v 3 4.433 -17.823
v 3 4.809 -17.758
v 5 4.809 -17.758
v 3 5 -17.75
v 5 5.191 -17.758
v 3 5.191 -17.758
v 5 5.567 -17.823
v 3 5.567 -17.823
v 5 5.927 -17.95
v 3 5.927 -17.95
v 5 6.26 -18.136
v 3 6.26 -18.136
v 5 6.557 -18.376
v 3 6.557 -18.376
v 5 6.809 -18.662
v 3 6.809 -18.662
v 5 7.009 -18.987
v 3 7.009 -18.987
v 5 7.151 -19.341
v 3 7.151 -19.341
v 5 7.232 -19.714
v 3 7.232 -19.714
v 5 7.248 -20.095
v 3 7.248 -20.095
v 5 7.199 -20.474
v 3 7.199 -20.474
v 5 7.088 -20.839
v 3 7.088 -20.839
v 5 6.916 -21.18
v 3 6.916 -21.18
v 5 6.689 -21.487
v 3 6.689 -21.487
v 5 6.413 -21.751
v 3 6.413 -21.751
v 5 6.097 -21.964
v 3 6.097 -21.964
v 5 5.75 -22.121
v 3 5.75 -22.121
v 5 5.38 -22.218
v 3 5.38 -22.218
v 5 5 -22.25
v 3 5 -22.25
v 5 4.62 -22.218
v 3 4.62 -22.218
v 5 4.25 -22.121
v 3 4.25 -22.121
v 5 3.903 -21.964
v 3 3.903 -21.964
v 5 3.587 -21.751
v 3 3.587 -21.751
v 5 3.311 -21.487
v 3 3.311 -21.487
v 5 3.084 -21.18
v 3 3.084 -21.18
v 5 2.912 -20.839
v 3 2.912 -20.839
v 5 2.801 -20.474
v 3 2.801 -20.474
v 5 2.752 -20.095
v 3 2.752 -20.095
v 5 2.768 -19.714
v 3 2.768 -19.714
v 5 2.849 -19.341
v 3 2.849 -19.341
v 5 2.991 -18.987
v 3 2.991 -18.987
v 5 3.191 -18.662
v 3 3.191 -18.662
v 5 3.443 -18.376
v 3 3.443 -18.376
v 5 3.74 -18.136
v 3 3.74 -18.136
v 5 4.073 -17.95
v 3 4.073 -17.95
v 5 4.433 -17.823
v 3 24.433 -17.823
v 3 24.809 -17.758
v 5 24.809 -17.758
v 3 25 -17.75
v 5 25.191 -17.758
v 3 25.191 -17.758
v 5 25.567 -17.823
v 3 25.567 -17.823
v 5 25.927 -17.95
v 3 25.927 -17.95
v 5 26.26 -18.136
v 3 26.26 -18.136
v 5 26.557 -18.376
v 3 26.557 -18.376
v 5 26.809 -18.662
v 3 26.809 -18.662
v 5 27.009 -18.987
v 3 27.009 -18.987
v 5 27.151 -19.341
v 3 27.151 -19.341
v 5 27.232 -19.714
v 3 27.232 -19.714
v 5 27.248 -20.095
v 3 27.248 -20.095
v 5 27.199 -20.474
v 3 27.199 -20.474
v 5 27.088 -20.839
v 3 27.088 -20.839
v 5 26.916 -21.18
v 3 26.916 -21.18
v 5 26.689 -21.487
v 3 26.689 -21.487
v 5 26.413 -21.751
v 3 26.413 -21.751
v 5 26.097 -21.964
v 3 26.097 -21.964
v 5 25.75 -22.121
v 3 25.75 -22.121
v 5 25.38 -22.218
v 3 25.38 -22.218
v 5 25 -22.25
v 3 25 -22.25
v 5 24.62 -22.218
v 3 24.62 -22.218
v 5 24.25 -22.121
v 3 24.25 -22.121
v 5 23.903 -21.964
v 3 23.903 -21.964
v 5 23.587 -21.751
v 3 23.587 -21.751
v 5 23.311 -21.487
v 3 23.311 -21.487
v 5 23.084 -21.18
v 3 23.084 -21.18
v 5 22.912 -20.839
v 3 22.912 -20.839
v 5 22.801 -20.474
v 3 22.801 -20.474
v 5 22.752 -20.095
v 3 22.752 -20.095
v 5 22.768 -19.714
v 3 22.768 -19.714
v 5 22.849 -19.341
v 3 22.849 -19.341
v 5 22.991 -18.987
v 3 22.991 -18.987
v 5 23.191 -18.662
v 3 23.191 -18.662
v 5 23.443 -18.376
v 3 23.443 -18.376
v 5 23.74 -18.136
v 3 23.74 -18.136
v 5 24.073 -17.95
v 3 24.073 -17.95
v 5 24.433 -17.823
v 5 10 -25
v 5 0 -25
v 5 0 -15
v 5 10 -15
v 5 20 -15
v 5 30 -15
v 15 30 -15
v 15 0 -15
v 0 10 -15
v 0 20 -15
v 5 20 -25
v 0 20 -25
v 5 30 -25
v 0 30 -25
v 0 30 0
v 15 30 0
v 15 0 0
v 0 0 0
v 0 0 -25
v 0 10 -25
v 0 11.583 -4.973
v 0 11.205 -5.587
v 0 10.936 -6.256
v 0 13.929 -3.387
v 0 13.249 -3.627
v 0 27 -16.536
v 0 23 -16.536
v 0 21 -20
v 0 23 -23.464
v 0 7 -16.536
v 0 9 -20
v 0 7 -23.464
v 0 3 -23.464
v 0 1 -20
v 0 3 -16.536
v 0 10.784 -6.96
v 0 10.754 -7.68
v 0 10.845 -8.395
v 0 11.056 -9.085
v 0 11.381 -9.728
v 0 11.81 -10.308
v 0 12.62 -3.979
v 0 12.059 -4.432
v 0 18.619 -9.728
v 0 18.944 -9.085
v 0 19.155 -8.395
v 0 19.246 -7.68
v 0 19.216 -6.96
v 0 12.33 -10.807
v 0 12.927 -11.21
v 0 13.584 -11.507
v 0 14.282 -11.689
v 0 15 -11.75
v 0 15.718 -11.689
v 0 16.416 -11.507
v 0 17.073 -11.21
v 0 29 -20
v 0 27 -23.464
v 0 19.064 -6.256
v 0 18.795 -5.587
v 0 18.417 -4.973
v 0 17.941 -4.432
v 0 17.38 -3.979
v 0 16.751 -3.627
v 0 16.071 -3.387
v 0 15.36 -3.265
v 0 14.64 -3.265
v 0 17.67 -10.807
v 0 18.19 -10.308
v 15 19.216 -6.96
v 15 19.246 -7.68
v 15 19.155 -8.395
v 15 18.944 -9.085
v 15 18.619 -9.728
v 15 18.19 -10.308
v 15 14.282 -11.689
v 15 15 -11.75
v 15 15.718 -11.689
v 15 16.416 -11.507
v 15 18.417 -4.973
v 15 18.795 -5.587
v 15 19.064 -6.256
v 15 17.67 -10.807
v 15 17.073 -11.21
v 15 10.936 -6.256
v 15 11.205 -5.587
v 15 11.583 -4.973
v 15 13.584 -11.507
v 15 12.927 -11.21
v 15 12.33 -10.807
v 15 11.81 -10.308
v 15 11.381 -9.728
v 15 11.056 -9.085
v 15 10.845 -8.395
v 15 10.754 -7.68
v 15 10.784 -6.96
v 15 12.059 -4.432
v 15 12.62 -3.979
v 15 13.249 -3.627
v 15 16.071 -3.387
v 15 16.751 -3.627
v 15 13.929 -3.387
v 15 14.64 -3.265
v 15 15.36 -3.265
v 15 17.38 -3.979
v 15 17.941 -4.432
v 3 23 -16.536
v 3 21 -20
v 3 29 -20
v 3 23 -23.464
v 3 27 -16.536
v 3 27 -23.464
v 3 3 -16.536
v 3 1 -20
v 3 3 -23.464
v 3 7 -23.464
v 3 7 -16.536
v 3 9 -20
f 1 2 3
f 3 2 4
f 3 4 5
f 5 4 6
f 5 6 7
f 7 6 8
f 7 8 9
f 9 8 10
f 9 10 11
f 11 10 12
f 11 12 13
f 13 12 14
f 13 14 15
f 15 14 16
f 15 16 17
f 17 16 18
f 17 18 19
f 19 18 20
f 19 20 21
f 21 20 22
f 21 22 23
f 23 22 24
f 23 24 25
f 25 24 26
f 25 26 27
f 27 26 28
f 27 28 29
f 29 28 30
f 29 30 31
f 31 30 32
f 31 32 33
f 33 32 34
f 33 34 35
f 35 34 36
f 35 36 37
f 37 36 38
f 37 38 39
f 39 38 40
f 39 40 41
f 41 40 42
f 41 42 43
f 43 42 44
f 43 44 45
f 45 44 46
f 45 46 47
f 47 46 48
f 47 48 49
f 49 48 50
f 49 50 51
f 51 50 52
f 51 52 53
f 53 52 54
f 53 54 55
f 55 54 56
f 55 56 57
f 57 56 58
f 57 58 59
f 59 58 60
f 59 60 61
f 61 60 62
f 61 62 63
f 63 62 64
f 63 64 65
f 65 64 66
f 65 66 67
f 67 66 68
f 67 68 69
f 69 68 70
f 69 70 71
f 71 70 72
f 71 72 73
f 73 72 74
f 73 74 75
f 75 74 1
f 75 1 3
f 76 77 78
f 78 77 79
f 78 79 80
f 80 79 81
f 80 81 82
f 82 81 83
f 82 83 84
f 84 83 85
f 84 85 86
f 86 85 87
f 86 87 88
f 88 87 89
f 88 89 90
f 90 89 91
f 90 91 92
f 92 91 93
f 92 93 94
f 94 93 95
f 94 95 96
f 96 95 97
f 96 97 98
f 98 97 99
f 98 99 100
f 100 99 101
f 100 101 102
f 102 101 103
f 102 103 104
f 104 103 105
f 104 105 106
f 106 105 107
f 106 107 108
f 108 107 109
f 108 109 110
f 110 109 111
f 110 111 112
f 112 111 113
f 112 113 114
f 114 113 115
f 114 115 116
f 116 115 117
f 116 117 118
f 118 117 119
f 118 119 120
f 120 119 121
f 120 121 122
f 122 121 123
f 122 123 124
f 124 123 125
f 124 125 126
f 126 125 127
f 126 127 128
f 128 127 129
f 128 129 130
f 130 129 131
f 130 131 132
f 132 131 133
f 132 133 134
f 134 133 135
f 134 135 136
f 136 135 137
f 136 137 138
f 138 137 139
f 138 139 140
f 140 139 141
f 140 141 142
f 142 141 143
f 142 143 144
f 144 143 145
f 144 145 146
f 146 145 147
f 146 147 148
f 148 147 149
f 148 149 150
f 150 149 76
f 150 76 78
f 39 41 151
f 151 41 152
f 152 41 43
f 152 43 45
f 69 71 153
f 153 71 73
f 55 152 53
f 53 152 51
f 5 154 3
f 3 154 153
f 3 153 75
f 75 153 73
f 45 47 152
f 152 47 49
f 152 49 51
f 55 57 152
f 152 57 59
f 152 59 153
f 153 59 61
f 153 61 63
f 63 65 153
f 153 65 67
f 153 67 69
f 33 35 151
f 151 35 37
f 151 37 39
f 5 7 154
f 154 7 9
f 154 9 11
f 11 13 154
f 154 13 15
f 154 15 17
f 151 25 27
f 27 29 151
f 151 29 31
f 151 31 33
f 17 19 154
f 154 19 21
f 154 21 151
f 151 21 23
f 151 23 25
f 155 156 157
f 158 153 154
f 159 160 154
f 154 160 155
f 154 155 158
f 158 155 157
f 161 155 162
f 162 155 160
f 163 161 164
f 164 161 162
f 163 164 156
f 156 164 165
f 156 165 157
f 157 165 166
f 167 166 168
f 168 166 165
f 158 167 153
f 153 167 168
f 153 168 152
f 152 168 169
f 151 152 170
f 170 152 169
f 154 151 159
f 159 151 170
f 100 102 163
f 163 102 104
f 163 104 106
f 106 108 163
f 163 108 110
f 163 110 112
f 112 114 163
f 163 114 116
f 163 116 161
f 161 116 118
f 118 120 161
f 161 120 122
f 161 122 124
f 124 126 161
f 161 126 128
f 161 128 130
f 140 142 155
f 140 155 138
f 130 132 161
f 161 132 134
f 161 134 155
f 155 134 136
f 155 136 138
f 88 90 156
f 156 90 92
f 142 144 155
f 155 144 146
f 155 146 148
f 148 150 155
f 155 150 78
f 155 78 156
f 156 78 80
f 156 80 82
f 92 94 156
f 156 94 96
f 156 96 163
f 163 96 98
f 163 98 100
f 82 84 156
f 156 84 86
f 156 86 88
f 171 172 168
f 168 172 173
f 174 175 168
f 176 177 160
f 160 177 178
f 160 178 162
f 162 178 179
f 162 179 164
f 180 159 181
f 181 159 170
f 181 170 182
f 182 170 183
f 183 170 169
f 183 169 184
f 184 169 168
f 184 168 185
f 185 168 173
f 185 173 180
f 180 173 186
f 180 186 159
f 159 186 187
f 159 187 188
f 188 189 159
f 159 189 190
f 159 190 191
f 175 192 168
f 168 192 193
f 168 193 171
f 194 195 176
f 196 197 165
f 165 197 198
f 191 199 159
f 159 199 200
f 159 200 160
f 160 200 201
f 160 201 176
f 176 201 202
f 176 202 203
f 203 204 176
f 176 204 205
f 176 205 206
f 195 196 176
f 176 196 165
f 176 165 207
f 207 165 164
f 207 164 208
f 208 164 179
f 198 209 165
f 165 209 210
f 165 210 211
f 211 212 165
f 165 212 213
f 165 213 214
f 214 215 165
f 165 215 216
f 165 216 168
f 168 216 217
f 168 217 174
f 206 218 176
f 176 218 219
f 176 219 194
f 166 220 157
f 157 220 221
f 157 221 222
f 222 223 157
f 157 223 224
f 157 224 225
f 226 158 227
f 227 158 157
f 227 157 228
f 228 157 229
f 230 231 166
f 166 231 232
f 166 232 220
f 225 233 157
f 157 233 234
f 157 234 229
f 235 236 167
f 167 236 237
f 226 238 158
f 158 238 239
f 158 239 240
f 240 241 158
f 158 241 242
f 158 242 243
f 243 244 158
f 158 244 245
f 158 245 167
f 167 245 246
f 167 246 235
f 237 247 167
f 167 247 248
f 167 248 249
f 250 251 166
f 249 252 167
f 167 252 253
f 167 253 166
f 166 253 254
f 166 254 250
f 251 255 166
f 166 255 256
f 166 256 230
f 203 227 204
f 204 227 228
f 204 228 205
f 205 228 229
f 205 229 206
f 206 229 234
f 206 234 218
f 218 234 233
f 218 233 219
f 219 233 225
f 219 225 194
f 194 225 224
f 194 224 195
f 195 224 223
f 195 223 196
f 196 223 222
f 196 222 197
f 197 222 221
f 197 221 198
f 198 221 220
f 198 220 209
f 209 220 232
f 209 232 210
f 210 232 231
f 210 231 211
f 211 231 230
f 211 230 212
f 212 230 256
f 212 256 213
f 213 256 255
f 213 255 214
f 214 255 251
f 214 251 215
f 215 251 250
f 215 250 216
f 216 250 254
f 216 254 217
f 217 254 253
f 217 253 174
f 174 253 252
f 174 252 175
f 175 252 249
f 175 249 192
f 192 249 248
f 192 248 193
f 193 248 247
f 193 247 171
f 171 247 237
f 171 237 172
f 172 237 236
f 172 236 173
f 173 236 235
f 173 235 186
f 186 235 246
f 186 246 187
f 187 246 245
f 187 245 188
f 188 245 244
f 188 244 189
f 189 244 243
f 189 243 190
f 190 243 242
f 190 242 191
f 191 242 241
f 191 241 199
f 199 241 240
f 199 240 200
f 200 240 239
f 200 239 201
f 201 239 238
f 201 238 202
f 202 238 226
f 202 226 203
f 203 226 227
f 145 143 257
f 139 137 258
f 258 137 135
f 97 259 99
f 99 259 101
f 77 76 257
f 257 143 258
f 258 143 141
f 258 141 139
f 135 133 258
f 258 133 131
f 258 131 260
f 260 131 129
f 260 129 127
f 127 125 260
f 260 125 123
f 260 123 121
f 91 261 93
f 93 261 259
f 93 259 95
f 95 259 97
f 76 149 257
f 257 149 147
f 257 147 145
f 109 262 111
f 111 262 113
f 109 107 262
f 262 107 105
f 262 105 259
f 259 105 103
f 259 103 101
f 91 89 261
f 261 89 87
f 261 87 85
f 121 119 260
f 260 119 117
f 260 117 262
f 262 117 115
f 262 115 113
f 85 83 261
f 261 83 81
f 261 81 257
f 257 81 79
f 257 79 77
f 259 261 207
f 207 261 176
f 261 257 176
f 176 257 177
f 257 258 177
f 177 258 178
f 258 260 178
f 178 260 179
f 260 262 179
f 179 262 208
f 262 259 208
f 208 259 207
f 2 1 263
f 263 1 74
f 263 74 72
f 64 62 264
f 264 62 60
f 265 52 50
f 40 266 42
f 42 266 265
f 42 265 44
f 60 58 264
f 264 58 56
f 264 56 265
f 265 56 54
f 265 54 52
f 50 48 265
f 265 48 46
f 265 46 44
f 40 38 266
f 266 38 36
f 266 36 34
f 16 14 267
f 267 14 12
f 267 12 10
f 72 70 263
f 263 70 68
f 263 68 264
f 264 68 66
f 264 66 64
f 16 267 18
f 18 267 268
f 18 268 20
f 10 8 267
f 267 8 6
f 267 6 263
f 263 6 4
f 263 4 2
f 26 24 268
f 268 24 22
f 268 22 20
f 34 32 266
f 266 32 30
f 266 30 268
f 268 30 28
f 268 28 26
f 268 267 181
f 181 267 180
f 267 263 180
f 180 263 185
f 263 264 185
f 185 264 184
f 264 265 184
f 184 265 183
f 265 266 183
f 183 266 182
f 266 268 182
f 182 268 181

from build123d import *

# Parameters (mm, degrees)
BOSS_EXTRUDE1_DEPTH = 5
SKETCH2_W           = 15
SKETCH2_H           = 30
BOSS_EXTRUDE2_DEPTH = 10
SKETCH3_R           = 4.25
CUT_EXTRUDE1_DEPTH  = 15
SKETCH4_R           = 2.25
CUT_EXTRUDE2_DEPTH  = 15
CUT_EXTRUDE3_DEPTH  = 3


with BuildPart() as part:
    # Sketch1 → Boss-Extrude1 (new body)
    with BuildSketch(Plane(origin=(0, 0, 0), x_dir=(0, 0, -1), z_dir=(1, 0, 0))):
        Polygon((25, 0), (25, 10), (15, 10), (15, 20), (25, 20), (25, 30), (0, 30), (0, 0), align=None)
    extrude(amount=BOSS_EXTRUDE1_DEPTH)

    # Sketch2 → Boss-Extrude2 (add)
    with BuildSketch(Plane(origin=(5, 0, 0), x_dir=(0, 0, -1), z_dir=(1, 0, 0))):
        with Locations((7.5, 15)):
            Rectangle(SKETCH2_W, SKETCH2_H)
    extrude(amount=BOSS_EXTRUDE2_DEPTH)

    # Sketch3 → Cut-Extrude1 (cut)
    with BuildSketch(Plane(origin=(15, 0, 0), x_dir=(0, 0, -1), z_dir=(1, 0, 0))):
        with Locations((7.5, 15)):
            Circle(SKETCH3_R)
    extrude(amount=-CUT_EXTRUDE1_DEPTH, mode=Mode.SUBTRACT)

    # Sketch4 → Cut-Extrude2 (cut)
    with BuildSketch(Plane(origin=(5, 0, 0), x_dir=(0, 0, -1), z_dir=(1, 0, 0))):
        with Locations((20, 25)):
            Circle(SKETCH4_R)
        with Locations((20, 5)):
            Circle(SKETCH4_R)
    extrude(amount=-CUT_EXTRUDE2_DEPTH, mode=Mode.SUBTRACT)

    # Sketch5 → Cut-Extrude3 (cut)
    with BuildSketch(Plane.ZY):
        Polygon((-20, 29), (-23.464101615, 27), (-23.464101615, 23), (-20, 21), (-16.535898385, 23), (-16.535898385, 27), align=None)
        Polygon((-20, 9), (-23.464101615, 7), (-23.464101615, 3), (-20, 1), (-16.535898385, 3), (-16.535898385, 7), align=None)
    extrude(amount=-CUT_EXTRUDE3_DEPTH, mode=Mode.SUBTRACT)


solid = part.part
